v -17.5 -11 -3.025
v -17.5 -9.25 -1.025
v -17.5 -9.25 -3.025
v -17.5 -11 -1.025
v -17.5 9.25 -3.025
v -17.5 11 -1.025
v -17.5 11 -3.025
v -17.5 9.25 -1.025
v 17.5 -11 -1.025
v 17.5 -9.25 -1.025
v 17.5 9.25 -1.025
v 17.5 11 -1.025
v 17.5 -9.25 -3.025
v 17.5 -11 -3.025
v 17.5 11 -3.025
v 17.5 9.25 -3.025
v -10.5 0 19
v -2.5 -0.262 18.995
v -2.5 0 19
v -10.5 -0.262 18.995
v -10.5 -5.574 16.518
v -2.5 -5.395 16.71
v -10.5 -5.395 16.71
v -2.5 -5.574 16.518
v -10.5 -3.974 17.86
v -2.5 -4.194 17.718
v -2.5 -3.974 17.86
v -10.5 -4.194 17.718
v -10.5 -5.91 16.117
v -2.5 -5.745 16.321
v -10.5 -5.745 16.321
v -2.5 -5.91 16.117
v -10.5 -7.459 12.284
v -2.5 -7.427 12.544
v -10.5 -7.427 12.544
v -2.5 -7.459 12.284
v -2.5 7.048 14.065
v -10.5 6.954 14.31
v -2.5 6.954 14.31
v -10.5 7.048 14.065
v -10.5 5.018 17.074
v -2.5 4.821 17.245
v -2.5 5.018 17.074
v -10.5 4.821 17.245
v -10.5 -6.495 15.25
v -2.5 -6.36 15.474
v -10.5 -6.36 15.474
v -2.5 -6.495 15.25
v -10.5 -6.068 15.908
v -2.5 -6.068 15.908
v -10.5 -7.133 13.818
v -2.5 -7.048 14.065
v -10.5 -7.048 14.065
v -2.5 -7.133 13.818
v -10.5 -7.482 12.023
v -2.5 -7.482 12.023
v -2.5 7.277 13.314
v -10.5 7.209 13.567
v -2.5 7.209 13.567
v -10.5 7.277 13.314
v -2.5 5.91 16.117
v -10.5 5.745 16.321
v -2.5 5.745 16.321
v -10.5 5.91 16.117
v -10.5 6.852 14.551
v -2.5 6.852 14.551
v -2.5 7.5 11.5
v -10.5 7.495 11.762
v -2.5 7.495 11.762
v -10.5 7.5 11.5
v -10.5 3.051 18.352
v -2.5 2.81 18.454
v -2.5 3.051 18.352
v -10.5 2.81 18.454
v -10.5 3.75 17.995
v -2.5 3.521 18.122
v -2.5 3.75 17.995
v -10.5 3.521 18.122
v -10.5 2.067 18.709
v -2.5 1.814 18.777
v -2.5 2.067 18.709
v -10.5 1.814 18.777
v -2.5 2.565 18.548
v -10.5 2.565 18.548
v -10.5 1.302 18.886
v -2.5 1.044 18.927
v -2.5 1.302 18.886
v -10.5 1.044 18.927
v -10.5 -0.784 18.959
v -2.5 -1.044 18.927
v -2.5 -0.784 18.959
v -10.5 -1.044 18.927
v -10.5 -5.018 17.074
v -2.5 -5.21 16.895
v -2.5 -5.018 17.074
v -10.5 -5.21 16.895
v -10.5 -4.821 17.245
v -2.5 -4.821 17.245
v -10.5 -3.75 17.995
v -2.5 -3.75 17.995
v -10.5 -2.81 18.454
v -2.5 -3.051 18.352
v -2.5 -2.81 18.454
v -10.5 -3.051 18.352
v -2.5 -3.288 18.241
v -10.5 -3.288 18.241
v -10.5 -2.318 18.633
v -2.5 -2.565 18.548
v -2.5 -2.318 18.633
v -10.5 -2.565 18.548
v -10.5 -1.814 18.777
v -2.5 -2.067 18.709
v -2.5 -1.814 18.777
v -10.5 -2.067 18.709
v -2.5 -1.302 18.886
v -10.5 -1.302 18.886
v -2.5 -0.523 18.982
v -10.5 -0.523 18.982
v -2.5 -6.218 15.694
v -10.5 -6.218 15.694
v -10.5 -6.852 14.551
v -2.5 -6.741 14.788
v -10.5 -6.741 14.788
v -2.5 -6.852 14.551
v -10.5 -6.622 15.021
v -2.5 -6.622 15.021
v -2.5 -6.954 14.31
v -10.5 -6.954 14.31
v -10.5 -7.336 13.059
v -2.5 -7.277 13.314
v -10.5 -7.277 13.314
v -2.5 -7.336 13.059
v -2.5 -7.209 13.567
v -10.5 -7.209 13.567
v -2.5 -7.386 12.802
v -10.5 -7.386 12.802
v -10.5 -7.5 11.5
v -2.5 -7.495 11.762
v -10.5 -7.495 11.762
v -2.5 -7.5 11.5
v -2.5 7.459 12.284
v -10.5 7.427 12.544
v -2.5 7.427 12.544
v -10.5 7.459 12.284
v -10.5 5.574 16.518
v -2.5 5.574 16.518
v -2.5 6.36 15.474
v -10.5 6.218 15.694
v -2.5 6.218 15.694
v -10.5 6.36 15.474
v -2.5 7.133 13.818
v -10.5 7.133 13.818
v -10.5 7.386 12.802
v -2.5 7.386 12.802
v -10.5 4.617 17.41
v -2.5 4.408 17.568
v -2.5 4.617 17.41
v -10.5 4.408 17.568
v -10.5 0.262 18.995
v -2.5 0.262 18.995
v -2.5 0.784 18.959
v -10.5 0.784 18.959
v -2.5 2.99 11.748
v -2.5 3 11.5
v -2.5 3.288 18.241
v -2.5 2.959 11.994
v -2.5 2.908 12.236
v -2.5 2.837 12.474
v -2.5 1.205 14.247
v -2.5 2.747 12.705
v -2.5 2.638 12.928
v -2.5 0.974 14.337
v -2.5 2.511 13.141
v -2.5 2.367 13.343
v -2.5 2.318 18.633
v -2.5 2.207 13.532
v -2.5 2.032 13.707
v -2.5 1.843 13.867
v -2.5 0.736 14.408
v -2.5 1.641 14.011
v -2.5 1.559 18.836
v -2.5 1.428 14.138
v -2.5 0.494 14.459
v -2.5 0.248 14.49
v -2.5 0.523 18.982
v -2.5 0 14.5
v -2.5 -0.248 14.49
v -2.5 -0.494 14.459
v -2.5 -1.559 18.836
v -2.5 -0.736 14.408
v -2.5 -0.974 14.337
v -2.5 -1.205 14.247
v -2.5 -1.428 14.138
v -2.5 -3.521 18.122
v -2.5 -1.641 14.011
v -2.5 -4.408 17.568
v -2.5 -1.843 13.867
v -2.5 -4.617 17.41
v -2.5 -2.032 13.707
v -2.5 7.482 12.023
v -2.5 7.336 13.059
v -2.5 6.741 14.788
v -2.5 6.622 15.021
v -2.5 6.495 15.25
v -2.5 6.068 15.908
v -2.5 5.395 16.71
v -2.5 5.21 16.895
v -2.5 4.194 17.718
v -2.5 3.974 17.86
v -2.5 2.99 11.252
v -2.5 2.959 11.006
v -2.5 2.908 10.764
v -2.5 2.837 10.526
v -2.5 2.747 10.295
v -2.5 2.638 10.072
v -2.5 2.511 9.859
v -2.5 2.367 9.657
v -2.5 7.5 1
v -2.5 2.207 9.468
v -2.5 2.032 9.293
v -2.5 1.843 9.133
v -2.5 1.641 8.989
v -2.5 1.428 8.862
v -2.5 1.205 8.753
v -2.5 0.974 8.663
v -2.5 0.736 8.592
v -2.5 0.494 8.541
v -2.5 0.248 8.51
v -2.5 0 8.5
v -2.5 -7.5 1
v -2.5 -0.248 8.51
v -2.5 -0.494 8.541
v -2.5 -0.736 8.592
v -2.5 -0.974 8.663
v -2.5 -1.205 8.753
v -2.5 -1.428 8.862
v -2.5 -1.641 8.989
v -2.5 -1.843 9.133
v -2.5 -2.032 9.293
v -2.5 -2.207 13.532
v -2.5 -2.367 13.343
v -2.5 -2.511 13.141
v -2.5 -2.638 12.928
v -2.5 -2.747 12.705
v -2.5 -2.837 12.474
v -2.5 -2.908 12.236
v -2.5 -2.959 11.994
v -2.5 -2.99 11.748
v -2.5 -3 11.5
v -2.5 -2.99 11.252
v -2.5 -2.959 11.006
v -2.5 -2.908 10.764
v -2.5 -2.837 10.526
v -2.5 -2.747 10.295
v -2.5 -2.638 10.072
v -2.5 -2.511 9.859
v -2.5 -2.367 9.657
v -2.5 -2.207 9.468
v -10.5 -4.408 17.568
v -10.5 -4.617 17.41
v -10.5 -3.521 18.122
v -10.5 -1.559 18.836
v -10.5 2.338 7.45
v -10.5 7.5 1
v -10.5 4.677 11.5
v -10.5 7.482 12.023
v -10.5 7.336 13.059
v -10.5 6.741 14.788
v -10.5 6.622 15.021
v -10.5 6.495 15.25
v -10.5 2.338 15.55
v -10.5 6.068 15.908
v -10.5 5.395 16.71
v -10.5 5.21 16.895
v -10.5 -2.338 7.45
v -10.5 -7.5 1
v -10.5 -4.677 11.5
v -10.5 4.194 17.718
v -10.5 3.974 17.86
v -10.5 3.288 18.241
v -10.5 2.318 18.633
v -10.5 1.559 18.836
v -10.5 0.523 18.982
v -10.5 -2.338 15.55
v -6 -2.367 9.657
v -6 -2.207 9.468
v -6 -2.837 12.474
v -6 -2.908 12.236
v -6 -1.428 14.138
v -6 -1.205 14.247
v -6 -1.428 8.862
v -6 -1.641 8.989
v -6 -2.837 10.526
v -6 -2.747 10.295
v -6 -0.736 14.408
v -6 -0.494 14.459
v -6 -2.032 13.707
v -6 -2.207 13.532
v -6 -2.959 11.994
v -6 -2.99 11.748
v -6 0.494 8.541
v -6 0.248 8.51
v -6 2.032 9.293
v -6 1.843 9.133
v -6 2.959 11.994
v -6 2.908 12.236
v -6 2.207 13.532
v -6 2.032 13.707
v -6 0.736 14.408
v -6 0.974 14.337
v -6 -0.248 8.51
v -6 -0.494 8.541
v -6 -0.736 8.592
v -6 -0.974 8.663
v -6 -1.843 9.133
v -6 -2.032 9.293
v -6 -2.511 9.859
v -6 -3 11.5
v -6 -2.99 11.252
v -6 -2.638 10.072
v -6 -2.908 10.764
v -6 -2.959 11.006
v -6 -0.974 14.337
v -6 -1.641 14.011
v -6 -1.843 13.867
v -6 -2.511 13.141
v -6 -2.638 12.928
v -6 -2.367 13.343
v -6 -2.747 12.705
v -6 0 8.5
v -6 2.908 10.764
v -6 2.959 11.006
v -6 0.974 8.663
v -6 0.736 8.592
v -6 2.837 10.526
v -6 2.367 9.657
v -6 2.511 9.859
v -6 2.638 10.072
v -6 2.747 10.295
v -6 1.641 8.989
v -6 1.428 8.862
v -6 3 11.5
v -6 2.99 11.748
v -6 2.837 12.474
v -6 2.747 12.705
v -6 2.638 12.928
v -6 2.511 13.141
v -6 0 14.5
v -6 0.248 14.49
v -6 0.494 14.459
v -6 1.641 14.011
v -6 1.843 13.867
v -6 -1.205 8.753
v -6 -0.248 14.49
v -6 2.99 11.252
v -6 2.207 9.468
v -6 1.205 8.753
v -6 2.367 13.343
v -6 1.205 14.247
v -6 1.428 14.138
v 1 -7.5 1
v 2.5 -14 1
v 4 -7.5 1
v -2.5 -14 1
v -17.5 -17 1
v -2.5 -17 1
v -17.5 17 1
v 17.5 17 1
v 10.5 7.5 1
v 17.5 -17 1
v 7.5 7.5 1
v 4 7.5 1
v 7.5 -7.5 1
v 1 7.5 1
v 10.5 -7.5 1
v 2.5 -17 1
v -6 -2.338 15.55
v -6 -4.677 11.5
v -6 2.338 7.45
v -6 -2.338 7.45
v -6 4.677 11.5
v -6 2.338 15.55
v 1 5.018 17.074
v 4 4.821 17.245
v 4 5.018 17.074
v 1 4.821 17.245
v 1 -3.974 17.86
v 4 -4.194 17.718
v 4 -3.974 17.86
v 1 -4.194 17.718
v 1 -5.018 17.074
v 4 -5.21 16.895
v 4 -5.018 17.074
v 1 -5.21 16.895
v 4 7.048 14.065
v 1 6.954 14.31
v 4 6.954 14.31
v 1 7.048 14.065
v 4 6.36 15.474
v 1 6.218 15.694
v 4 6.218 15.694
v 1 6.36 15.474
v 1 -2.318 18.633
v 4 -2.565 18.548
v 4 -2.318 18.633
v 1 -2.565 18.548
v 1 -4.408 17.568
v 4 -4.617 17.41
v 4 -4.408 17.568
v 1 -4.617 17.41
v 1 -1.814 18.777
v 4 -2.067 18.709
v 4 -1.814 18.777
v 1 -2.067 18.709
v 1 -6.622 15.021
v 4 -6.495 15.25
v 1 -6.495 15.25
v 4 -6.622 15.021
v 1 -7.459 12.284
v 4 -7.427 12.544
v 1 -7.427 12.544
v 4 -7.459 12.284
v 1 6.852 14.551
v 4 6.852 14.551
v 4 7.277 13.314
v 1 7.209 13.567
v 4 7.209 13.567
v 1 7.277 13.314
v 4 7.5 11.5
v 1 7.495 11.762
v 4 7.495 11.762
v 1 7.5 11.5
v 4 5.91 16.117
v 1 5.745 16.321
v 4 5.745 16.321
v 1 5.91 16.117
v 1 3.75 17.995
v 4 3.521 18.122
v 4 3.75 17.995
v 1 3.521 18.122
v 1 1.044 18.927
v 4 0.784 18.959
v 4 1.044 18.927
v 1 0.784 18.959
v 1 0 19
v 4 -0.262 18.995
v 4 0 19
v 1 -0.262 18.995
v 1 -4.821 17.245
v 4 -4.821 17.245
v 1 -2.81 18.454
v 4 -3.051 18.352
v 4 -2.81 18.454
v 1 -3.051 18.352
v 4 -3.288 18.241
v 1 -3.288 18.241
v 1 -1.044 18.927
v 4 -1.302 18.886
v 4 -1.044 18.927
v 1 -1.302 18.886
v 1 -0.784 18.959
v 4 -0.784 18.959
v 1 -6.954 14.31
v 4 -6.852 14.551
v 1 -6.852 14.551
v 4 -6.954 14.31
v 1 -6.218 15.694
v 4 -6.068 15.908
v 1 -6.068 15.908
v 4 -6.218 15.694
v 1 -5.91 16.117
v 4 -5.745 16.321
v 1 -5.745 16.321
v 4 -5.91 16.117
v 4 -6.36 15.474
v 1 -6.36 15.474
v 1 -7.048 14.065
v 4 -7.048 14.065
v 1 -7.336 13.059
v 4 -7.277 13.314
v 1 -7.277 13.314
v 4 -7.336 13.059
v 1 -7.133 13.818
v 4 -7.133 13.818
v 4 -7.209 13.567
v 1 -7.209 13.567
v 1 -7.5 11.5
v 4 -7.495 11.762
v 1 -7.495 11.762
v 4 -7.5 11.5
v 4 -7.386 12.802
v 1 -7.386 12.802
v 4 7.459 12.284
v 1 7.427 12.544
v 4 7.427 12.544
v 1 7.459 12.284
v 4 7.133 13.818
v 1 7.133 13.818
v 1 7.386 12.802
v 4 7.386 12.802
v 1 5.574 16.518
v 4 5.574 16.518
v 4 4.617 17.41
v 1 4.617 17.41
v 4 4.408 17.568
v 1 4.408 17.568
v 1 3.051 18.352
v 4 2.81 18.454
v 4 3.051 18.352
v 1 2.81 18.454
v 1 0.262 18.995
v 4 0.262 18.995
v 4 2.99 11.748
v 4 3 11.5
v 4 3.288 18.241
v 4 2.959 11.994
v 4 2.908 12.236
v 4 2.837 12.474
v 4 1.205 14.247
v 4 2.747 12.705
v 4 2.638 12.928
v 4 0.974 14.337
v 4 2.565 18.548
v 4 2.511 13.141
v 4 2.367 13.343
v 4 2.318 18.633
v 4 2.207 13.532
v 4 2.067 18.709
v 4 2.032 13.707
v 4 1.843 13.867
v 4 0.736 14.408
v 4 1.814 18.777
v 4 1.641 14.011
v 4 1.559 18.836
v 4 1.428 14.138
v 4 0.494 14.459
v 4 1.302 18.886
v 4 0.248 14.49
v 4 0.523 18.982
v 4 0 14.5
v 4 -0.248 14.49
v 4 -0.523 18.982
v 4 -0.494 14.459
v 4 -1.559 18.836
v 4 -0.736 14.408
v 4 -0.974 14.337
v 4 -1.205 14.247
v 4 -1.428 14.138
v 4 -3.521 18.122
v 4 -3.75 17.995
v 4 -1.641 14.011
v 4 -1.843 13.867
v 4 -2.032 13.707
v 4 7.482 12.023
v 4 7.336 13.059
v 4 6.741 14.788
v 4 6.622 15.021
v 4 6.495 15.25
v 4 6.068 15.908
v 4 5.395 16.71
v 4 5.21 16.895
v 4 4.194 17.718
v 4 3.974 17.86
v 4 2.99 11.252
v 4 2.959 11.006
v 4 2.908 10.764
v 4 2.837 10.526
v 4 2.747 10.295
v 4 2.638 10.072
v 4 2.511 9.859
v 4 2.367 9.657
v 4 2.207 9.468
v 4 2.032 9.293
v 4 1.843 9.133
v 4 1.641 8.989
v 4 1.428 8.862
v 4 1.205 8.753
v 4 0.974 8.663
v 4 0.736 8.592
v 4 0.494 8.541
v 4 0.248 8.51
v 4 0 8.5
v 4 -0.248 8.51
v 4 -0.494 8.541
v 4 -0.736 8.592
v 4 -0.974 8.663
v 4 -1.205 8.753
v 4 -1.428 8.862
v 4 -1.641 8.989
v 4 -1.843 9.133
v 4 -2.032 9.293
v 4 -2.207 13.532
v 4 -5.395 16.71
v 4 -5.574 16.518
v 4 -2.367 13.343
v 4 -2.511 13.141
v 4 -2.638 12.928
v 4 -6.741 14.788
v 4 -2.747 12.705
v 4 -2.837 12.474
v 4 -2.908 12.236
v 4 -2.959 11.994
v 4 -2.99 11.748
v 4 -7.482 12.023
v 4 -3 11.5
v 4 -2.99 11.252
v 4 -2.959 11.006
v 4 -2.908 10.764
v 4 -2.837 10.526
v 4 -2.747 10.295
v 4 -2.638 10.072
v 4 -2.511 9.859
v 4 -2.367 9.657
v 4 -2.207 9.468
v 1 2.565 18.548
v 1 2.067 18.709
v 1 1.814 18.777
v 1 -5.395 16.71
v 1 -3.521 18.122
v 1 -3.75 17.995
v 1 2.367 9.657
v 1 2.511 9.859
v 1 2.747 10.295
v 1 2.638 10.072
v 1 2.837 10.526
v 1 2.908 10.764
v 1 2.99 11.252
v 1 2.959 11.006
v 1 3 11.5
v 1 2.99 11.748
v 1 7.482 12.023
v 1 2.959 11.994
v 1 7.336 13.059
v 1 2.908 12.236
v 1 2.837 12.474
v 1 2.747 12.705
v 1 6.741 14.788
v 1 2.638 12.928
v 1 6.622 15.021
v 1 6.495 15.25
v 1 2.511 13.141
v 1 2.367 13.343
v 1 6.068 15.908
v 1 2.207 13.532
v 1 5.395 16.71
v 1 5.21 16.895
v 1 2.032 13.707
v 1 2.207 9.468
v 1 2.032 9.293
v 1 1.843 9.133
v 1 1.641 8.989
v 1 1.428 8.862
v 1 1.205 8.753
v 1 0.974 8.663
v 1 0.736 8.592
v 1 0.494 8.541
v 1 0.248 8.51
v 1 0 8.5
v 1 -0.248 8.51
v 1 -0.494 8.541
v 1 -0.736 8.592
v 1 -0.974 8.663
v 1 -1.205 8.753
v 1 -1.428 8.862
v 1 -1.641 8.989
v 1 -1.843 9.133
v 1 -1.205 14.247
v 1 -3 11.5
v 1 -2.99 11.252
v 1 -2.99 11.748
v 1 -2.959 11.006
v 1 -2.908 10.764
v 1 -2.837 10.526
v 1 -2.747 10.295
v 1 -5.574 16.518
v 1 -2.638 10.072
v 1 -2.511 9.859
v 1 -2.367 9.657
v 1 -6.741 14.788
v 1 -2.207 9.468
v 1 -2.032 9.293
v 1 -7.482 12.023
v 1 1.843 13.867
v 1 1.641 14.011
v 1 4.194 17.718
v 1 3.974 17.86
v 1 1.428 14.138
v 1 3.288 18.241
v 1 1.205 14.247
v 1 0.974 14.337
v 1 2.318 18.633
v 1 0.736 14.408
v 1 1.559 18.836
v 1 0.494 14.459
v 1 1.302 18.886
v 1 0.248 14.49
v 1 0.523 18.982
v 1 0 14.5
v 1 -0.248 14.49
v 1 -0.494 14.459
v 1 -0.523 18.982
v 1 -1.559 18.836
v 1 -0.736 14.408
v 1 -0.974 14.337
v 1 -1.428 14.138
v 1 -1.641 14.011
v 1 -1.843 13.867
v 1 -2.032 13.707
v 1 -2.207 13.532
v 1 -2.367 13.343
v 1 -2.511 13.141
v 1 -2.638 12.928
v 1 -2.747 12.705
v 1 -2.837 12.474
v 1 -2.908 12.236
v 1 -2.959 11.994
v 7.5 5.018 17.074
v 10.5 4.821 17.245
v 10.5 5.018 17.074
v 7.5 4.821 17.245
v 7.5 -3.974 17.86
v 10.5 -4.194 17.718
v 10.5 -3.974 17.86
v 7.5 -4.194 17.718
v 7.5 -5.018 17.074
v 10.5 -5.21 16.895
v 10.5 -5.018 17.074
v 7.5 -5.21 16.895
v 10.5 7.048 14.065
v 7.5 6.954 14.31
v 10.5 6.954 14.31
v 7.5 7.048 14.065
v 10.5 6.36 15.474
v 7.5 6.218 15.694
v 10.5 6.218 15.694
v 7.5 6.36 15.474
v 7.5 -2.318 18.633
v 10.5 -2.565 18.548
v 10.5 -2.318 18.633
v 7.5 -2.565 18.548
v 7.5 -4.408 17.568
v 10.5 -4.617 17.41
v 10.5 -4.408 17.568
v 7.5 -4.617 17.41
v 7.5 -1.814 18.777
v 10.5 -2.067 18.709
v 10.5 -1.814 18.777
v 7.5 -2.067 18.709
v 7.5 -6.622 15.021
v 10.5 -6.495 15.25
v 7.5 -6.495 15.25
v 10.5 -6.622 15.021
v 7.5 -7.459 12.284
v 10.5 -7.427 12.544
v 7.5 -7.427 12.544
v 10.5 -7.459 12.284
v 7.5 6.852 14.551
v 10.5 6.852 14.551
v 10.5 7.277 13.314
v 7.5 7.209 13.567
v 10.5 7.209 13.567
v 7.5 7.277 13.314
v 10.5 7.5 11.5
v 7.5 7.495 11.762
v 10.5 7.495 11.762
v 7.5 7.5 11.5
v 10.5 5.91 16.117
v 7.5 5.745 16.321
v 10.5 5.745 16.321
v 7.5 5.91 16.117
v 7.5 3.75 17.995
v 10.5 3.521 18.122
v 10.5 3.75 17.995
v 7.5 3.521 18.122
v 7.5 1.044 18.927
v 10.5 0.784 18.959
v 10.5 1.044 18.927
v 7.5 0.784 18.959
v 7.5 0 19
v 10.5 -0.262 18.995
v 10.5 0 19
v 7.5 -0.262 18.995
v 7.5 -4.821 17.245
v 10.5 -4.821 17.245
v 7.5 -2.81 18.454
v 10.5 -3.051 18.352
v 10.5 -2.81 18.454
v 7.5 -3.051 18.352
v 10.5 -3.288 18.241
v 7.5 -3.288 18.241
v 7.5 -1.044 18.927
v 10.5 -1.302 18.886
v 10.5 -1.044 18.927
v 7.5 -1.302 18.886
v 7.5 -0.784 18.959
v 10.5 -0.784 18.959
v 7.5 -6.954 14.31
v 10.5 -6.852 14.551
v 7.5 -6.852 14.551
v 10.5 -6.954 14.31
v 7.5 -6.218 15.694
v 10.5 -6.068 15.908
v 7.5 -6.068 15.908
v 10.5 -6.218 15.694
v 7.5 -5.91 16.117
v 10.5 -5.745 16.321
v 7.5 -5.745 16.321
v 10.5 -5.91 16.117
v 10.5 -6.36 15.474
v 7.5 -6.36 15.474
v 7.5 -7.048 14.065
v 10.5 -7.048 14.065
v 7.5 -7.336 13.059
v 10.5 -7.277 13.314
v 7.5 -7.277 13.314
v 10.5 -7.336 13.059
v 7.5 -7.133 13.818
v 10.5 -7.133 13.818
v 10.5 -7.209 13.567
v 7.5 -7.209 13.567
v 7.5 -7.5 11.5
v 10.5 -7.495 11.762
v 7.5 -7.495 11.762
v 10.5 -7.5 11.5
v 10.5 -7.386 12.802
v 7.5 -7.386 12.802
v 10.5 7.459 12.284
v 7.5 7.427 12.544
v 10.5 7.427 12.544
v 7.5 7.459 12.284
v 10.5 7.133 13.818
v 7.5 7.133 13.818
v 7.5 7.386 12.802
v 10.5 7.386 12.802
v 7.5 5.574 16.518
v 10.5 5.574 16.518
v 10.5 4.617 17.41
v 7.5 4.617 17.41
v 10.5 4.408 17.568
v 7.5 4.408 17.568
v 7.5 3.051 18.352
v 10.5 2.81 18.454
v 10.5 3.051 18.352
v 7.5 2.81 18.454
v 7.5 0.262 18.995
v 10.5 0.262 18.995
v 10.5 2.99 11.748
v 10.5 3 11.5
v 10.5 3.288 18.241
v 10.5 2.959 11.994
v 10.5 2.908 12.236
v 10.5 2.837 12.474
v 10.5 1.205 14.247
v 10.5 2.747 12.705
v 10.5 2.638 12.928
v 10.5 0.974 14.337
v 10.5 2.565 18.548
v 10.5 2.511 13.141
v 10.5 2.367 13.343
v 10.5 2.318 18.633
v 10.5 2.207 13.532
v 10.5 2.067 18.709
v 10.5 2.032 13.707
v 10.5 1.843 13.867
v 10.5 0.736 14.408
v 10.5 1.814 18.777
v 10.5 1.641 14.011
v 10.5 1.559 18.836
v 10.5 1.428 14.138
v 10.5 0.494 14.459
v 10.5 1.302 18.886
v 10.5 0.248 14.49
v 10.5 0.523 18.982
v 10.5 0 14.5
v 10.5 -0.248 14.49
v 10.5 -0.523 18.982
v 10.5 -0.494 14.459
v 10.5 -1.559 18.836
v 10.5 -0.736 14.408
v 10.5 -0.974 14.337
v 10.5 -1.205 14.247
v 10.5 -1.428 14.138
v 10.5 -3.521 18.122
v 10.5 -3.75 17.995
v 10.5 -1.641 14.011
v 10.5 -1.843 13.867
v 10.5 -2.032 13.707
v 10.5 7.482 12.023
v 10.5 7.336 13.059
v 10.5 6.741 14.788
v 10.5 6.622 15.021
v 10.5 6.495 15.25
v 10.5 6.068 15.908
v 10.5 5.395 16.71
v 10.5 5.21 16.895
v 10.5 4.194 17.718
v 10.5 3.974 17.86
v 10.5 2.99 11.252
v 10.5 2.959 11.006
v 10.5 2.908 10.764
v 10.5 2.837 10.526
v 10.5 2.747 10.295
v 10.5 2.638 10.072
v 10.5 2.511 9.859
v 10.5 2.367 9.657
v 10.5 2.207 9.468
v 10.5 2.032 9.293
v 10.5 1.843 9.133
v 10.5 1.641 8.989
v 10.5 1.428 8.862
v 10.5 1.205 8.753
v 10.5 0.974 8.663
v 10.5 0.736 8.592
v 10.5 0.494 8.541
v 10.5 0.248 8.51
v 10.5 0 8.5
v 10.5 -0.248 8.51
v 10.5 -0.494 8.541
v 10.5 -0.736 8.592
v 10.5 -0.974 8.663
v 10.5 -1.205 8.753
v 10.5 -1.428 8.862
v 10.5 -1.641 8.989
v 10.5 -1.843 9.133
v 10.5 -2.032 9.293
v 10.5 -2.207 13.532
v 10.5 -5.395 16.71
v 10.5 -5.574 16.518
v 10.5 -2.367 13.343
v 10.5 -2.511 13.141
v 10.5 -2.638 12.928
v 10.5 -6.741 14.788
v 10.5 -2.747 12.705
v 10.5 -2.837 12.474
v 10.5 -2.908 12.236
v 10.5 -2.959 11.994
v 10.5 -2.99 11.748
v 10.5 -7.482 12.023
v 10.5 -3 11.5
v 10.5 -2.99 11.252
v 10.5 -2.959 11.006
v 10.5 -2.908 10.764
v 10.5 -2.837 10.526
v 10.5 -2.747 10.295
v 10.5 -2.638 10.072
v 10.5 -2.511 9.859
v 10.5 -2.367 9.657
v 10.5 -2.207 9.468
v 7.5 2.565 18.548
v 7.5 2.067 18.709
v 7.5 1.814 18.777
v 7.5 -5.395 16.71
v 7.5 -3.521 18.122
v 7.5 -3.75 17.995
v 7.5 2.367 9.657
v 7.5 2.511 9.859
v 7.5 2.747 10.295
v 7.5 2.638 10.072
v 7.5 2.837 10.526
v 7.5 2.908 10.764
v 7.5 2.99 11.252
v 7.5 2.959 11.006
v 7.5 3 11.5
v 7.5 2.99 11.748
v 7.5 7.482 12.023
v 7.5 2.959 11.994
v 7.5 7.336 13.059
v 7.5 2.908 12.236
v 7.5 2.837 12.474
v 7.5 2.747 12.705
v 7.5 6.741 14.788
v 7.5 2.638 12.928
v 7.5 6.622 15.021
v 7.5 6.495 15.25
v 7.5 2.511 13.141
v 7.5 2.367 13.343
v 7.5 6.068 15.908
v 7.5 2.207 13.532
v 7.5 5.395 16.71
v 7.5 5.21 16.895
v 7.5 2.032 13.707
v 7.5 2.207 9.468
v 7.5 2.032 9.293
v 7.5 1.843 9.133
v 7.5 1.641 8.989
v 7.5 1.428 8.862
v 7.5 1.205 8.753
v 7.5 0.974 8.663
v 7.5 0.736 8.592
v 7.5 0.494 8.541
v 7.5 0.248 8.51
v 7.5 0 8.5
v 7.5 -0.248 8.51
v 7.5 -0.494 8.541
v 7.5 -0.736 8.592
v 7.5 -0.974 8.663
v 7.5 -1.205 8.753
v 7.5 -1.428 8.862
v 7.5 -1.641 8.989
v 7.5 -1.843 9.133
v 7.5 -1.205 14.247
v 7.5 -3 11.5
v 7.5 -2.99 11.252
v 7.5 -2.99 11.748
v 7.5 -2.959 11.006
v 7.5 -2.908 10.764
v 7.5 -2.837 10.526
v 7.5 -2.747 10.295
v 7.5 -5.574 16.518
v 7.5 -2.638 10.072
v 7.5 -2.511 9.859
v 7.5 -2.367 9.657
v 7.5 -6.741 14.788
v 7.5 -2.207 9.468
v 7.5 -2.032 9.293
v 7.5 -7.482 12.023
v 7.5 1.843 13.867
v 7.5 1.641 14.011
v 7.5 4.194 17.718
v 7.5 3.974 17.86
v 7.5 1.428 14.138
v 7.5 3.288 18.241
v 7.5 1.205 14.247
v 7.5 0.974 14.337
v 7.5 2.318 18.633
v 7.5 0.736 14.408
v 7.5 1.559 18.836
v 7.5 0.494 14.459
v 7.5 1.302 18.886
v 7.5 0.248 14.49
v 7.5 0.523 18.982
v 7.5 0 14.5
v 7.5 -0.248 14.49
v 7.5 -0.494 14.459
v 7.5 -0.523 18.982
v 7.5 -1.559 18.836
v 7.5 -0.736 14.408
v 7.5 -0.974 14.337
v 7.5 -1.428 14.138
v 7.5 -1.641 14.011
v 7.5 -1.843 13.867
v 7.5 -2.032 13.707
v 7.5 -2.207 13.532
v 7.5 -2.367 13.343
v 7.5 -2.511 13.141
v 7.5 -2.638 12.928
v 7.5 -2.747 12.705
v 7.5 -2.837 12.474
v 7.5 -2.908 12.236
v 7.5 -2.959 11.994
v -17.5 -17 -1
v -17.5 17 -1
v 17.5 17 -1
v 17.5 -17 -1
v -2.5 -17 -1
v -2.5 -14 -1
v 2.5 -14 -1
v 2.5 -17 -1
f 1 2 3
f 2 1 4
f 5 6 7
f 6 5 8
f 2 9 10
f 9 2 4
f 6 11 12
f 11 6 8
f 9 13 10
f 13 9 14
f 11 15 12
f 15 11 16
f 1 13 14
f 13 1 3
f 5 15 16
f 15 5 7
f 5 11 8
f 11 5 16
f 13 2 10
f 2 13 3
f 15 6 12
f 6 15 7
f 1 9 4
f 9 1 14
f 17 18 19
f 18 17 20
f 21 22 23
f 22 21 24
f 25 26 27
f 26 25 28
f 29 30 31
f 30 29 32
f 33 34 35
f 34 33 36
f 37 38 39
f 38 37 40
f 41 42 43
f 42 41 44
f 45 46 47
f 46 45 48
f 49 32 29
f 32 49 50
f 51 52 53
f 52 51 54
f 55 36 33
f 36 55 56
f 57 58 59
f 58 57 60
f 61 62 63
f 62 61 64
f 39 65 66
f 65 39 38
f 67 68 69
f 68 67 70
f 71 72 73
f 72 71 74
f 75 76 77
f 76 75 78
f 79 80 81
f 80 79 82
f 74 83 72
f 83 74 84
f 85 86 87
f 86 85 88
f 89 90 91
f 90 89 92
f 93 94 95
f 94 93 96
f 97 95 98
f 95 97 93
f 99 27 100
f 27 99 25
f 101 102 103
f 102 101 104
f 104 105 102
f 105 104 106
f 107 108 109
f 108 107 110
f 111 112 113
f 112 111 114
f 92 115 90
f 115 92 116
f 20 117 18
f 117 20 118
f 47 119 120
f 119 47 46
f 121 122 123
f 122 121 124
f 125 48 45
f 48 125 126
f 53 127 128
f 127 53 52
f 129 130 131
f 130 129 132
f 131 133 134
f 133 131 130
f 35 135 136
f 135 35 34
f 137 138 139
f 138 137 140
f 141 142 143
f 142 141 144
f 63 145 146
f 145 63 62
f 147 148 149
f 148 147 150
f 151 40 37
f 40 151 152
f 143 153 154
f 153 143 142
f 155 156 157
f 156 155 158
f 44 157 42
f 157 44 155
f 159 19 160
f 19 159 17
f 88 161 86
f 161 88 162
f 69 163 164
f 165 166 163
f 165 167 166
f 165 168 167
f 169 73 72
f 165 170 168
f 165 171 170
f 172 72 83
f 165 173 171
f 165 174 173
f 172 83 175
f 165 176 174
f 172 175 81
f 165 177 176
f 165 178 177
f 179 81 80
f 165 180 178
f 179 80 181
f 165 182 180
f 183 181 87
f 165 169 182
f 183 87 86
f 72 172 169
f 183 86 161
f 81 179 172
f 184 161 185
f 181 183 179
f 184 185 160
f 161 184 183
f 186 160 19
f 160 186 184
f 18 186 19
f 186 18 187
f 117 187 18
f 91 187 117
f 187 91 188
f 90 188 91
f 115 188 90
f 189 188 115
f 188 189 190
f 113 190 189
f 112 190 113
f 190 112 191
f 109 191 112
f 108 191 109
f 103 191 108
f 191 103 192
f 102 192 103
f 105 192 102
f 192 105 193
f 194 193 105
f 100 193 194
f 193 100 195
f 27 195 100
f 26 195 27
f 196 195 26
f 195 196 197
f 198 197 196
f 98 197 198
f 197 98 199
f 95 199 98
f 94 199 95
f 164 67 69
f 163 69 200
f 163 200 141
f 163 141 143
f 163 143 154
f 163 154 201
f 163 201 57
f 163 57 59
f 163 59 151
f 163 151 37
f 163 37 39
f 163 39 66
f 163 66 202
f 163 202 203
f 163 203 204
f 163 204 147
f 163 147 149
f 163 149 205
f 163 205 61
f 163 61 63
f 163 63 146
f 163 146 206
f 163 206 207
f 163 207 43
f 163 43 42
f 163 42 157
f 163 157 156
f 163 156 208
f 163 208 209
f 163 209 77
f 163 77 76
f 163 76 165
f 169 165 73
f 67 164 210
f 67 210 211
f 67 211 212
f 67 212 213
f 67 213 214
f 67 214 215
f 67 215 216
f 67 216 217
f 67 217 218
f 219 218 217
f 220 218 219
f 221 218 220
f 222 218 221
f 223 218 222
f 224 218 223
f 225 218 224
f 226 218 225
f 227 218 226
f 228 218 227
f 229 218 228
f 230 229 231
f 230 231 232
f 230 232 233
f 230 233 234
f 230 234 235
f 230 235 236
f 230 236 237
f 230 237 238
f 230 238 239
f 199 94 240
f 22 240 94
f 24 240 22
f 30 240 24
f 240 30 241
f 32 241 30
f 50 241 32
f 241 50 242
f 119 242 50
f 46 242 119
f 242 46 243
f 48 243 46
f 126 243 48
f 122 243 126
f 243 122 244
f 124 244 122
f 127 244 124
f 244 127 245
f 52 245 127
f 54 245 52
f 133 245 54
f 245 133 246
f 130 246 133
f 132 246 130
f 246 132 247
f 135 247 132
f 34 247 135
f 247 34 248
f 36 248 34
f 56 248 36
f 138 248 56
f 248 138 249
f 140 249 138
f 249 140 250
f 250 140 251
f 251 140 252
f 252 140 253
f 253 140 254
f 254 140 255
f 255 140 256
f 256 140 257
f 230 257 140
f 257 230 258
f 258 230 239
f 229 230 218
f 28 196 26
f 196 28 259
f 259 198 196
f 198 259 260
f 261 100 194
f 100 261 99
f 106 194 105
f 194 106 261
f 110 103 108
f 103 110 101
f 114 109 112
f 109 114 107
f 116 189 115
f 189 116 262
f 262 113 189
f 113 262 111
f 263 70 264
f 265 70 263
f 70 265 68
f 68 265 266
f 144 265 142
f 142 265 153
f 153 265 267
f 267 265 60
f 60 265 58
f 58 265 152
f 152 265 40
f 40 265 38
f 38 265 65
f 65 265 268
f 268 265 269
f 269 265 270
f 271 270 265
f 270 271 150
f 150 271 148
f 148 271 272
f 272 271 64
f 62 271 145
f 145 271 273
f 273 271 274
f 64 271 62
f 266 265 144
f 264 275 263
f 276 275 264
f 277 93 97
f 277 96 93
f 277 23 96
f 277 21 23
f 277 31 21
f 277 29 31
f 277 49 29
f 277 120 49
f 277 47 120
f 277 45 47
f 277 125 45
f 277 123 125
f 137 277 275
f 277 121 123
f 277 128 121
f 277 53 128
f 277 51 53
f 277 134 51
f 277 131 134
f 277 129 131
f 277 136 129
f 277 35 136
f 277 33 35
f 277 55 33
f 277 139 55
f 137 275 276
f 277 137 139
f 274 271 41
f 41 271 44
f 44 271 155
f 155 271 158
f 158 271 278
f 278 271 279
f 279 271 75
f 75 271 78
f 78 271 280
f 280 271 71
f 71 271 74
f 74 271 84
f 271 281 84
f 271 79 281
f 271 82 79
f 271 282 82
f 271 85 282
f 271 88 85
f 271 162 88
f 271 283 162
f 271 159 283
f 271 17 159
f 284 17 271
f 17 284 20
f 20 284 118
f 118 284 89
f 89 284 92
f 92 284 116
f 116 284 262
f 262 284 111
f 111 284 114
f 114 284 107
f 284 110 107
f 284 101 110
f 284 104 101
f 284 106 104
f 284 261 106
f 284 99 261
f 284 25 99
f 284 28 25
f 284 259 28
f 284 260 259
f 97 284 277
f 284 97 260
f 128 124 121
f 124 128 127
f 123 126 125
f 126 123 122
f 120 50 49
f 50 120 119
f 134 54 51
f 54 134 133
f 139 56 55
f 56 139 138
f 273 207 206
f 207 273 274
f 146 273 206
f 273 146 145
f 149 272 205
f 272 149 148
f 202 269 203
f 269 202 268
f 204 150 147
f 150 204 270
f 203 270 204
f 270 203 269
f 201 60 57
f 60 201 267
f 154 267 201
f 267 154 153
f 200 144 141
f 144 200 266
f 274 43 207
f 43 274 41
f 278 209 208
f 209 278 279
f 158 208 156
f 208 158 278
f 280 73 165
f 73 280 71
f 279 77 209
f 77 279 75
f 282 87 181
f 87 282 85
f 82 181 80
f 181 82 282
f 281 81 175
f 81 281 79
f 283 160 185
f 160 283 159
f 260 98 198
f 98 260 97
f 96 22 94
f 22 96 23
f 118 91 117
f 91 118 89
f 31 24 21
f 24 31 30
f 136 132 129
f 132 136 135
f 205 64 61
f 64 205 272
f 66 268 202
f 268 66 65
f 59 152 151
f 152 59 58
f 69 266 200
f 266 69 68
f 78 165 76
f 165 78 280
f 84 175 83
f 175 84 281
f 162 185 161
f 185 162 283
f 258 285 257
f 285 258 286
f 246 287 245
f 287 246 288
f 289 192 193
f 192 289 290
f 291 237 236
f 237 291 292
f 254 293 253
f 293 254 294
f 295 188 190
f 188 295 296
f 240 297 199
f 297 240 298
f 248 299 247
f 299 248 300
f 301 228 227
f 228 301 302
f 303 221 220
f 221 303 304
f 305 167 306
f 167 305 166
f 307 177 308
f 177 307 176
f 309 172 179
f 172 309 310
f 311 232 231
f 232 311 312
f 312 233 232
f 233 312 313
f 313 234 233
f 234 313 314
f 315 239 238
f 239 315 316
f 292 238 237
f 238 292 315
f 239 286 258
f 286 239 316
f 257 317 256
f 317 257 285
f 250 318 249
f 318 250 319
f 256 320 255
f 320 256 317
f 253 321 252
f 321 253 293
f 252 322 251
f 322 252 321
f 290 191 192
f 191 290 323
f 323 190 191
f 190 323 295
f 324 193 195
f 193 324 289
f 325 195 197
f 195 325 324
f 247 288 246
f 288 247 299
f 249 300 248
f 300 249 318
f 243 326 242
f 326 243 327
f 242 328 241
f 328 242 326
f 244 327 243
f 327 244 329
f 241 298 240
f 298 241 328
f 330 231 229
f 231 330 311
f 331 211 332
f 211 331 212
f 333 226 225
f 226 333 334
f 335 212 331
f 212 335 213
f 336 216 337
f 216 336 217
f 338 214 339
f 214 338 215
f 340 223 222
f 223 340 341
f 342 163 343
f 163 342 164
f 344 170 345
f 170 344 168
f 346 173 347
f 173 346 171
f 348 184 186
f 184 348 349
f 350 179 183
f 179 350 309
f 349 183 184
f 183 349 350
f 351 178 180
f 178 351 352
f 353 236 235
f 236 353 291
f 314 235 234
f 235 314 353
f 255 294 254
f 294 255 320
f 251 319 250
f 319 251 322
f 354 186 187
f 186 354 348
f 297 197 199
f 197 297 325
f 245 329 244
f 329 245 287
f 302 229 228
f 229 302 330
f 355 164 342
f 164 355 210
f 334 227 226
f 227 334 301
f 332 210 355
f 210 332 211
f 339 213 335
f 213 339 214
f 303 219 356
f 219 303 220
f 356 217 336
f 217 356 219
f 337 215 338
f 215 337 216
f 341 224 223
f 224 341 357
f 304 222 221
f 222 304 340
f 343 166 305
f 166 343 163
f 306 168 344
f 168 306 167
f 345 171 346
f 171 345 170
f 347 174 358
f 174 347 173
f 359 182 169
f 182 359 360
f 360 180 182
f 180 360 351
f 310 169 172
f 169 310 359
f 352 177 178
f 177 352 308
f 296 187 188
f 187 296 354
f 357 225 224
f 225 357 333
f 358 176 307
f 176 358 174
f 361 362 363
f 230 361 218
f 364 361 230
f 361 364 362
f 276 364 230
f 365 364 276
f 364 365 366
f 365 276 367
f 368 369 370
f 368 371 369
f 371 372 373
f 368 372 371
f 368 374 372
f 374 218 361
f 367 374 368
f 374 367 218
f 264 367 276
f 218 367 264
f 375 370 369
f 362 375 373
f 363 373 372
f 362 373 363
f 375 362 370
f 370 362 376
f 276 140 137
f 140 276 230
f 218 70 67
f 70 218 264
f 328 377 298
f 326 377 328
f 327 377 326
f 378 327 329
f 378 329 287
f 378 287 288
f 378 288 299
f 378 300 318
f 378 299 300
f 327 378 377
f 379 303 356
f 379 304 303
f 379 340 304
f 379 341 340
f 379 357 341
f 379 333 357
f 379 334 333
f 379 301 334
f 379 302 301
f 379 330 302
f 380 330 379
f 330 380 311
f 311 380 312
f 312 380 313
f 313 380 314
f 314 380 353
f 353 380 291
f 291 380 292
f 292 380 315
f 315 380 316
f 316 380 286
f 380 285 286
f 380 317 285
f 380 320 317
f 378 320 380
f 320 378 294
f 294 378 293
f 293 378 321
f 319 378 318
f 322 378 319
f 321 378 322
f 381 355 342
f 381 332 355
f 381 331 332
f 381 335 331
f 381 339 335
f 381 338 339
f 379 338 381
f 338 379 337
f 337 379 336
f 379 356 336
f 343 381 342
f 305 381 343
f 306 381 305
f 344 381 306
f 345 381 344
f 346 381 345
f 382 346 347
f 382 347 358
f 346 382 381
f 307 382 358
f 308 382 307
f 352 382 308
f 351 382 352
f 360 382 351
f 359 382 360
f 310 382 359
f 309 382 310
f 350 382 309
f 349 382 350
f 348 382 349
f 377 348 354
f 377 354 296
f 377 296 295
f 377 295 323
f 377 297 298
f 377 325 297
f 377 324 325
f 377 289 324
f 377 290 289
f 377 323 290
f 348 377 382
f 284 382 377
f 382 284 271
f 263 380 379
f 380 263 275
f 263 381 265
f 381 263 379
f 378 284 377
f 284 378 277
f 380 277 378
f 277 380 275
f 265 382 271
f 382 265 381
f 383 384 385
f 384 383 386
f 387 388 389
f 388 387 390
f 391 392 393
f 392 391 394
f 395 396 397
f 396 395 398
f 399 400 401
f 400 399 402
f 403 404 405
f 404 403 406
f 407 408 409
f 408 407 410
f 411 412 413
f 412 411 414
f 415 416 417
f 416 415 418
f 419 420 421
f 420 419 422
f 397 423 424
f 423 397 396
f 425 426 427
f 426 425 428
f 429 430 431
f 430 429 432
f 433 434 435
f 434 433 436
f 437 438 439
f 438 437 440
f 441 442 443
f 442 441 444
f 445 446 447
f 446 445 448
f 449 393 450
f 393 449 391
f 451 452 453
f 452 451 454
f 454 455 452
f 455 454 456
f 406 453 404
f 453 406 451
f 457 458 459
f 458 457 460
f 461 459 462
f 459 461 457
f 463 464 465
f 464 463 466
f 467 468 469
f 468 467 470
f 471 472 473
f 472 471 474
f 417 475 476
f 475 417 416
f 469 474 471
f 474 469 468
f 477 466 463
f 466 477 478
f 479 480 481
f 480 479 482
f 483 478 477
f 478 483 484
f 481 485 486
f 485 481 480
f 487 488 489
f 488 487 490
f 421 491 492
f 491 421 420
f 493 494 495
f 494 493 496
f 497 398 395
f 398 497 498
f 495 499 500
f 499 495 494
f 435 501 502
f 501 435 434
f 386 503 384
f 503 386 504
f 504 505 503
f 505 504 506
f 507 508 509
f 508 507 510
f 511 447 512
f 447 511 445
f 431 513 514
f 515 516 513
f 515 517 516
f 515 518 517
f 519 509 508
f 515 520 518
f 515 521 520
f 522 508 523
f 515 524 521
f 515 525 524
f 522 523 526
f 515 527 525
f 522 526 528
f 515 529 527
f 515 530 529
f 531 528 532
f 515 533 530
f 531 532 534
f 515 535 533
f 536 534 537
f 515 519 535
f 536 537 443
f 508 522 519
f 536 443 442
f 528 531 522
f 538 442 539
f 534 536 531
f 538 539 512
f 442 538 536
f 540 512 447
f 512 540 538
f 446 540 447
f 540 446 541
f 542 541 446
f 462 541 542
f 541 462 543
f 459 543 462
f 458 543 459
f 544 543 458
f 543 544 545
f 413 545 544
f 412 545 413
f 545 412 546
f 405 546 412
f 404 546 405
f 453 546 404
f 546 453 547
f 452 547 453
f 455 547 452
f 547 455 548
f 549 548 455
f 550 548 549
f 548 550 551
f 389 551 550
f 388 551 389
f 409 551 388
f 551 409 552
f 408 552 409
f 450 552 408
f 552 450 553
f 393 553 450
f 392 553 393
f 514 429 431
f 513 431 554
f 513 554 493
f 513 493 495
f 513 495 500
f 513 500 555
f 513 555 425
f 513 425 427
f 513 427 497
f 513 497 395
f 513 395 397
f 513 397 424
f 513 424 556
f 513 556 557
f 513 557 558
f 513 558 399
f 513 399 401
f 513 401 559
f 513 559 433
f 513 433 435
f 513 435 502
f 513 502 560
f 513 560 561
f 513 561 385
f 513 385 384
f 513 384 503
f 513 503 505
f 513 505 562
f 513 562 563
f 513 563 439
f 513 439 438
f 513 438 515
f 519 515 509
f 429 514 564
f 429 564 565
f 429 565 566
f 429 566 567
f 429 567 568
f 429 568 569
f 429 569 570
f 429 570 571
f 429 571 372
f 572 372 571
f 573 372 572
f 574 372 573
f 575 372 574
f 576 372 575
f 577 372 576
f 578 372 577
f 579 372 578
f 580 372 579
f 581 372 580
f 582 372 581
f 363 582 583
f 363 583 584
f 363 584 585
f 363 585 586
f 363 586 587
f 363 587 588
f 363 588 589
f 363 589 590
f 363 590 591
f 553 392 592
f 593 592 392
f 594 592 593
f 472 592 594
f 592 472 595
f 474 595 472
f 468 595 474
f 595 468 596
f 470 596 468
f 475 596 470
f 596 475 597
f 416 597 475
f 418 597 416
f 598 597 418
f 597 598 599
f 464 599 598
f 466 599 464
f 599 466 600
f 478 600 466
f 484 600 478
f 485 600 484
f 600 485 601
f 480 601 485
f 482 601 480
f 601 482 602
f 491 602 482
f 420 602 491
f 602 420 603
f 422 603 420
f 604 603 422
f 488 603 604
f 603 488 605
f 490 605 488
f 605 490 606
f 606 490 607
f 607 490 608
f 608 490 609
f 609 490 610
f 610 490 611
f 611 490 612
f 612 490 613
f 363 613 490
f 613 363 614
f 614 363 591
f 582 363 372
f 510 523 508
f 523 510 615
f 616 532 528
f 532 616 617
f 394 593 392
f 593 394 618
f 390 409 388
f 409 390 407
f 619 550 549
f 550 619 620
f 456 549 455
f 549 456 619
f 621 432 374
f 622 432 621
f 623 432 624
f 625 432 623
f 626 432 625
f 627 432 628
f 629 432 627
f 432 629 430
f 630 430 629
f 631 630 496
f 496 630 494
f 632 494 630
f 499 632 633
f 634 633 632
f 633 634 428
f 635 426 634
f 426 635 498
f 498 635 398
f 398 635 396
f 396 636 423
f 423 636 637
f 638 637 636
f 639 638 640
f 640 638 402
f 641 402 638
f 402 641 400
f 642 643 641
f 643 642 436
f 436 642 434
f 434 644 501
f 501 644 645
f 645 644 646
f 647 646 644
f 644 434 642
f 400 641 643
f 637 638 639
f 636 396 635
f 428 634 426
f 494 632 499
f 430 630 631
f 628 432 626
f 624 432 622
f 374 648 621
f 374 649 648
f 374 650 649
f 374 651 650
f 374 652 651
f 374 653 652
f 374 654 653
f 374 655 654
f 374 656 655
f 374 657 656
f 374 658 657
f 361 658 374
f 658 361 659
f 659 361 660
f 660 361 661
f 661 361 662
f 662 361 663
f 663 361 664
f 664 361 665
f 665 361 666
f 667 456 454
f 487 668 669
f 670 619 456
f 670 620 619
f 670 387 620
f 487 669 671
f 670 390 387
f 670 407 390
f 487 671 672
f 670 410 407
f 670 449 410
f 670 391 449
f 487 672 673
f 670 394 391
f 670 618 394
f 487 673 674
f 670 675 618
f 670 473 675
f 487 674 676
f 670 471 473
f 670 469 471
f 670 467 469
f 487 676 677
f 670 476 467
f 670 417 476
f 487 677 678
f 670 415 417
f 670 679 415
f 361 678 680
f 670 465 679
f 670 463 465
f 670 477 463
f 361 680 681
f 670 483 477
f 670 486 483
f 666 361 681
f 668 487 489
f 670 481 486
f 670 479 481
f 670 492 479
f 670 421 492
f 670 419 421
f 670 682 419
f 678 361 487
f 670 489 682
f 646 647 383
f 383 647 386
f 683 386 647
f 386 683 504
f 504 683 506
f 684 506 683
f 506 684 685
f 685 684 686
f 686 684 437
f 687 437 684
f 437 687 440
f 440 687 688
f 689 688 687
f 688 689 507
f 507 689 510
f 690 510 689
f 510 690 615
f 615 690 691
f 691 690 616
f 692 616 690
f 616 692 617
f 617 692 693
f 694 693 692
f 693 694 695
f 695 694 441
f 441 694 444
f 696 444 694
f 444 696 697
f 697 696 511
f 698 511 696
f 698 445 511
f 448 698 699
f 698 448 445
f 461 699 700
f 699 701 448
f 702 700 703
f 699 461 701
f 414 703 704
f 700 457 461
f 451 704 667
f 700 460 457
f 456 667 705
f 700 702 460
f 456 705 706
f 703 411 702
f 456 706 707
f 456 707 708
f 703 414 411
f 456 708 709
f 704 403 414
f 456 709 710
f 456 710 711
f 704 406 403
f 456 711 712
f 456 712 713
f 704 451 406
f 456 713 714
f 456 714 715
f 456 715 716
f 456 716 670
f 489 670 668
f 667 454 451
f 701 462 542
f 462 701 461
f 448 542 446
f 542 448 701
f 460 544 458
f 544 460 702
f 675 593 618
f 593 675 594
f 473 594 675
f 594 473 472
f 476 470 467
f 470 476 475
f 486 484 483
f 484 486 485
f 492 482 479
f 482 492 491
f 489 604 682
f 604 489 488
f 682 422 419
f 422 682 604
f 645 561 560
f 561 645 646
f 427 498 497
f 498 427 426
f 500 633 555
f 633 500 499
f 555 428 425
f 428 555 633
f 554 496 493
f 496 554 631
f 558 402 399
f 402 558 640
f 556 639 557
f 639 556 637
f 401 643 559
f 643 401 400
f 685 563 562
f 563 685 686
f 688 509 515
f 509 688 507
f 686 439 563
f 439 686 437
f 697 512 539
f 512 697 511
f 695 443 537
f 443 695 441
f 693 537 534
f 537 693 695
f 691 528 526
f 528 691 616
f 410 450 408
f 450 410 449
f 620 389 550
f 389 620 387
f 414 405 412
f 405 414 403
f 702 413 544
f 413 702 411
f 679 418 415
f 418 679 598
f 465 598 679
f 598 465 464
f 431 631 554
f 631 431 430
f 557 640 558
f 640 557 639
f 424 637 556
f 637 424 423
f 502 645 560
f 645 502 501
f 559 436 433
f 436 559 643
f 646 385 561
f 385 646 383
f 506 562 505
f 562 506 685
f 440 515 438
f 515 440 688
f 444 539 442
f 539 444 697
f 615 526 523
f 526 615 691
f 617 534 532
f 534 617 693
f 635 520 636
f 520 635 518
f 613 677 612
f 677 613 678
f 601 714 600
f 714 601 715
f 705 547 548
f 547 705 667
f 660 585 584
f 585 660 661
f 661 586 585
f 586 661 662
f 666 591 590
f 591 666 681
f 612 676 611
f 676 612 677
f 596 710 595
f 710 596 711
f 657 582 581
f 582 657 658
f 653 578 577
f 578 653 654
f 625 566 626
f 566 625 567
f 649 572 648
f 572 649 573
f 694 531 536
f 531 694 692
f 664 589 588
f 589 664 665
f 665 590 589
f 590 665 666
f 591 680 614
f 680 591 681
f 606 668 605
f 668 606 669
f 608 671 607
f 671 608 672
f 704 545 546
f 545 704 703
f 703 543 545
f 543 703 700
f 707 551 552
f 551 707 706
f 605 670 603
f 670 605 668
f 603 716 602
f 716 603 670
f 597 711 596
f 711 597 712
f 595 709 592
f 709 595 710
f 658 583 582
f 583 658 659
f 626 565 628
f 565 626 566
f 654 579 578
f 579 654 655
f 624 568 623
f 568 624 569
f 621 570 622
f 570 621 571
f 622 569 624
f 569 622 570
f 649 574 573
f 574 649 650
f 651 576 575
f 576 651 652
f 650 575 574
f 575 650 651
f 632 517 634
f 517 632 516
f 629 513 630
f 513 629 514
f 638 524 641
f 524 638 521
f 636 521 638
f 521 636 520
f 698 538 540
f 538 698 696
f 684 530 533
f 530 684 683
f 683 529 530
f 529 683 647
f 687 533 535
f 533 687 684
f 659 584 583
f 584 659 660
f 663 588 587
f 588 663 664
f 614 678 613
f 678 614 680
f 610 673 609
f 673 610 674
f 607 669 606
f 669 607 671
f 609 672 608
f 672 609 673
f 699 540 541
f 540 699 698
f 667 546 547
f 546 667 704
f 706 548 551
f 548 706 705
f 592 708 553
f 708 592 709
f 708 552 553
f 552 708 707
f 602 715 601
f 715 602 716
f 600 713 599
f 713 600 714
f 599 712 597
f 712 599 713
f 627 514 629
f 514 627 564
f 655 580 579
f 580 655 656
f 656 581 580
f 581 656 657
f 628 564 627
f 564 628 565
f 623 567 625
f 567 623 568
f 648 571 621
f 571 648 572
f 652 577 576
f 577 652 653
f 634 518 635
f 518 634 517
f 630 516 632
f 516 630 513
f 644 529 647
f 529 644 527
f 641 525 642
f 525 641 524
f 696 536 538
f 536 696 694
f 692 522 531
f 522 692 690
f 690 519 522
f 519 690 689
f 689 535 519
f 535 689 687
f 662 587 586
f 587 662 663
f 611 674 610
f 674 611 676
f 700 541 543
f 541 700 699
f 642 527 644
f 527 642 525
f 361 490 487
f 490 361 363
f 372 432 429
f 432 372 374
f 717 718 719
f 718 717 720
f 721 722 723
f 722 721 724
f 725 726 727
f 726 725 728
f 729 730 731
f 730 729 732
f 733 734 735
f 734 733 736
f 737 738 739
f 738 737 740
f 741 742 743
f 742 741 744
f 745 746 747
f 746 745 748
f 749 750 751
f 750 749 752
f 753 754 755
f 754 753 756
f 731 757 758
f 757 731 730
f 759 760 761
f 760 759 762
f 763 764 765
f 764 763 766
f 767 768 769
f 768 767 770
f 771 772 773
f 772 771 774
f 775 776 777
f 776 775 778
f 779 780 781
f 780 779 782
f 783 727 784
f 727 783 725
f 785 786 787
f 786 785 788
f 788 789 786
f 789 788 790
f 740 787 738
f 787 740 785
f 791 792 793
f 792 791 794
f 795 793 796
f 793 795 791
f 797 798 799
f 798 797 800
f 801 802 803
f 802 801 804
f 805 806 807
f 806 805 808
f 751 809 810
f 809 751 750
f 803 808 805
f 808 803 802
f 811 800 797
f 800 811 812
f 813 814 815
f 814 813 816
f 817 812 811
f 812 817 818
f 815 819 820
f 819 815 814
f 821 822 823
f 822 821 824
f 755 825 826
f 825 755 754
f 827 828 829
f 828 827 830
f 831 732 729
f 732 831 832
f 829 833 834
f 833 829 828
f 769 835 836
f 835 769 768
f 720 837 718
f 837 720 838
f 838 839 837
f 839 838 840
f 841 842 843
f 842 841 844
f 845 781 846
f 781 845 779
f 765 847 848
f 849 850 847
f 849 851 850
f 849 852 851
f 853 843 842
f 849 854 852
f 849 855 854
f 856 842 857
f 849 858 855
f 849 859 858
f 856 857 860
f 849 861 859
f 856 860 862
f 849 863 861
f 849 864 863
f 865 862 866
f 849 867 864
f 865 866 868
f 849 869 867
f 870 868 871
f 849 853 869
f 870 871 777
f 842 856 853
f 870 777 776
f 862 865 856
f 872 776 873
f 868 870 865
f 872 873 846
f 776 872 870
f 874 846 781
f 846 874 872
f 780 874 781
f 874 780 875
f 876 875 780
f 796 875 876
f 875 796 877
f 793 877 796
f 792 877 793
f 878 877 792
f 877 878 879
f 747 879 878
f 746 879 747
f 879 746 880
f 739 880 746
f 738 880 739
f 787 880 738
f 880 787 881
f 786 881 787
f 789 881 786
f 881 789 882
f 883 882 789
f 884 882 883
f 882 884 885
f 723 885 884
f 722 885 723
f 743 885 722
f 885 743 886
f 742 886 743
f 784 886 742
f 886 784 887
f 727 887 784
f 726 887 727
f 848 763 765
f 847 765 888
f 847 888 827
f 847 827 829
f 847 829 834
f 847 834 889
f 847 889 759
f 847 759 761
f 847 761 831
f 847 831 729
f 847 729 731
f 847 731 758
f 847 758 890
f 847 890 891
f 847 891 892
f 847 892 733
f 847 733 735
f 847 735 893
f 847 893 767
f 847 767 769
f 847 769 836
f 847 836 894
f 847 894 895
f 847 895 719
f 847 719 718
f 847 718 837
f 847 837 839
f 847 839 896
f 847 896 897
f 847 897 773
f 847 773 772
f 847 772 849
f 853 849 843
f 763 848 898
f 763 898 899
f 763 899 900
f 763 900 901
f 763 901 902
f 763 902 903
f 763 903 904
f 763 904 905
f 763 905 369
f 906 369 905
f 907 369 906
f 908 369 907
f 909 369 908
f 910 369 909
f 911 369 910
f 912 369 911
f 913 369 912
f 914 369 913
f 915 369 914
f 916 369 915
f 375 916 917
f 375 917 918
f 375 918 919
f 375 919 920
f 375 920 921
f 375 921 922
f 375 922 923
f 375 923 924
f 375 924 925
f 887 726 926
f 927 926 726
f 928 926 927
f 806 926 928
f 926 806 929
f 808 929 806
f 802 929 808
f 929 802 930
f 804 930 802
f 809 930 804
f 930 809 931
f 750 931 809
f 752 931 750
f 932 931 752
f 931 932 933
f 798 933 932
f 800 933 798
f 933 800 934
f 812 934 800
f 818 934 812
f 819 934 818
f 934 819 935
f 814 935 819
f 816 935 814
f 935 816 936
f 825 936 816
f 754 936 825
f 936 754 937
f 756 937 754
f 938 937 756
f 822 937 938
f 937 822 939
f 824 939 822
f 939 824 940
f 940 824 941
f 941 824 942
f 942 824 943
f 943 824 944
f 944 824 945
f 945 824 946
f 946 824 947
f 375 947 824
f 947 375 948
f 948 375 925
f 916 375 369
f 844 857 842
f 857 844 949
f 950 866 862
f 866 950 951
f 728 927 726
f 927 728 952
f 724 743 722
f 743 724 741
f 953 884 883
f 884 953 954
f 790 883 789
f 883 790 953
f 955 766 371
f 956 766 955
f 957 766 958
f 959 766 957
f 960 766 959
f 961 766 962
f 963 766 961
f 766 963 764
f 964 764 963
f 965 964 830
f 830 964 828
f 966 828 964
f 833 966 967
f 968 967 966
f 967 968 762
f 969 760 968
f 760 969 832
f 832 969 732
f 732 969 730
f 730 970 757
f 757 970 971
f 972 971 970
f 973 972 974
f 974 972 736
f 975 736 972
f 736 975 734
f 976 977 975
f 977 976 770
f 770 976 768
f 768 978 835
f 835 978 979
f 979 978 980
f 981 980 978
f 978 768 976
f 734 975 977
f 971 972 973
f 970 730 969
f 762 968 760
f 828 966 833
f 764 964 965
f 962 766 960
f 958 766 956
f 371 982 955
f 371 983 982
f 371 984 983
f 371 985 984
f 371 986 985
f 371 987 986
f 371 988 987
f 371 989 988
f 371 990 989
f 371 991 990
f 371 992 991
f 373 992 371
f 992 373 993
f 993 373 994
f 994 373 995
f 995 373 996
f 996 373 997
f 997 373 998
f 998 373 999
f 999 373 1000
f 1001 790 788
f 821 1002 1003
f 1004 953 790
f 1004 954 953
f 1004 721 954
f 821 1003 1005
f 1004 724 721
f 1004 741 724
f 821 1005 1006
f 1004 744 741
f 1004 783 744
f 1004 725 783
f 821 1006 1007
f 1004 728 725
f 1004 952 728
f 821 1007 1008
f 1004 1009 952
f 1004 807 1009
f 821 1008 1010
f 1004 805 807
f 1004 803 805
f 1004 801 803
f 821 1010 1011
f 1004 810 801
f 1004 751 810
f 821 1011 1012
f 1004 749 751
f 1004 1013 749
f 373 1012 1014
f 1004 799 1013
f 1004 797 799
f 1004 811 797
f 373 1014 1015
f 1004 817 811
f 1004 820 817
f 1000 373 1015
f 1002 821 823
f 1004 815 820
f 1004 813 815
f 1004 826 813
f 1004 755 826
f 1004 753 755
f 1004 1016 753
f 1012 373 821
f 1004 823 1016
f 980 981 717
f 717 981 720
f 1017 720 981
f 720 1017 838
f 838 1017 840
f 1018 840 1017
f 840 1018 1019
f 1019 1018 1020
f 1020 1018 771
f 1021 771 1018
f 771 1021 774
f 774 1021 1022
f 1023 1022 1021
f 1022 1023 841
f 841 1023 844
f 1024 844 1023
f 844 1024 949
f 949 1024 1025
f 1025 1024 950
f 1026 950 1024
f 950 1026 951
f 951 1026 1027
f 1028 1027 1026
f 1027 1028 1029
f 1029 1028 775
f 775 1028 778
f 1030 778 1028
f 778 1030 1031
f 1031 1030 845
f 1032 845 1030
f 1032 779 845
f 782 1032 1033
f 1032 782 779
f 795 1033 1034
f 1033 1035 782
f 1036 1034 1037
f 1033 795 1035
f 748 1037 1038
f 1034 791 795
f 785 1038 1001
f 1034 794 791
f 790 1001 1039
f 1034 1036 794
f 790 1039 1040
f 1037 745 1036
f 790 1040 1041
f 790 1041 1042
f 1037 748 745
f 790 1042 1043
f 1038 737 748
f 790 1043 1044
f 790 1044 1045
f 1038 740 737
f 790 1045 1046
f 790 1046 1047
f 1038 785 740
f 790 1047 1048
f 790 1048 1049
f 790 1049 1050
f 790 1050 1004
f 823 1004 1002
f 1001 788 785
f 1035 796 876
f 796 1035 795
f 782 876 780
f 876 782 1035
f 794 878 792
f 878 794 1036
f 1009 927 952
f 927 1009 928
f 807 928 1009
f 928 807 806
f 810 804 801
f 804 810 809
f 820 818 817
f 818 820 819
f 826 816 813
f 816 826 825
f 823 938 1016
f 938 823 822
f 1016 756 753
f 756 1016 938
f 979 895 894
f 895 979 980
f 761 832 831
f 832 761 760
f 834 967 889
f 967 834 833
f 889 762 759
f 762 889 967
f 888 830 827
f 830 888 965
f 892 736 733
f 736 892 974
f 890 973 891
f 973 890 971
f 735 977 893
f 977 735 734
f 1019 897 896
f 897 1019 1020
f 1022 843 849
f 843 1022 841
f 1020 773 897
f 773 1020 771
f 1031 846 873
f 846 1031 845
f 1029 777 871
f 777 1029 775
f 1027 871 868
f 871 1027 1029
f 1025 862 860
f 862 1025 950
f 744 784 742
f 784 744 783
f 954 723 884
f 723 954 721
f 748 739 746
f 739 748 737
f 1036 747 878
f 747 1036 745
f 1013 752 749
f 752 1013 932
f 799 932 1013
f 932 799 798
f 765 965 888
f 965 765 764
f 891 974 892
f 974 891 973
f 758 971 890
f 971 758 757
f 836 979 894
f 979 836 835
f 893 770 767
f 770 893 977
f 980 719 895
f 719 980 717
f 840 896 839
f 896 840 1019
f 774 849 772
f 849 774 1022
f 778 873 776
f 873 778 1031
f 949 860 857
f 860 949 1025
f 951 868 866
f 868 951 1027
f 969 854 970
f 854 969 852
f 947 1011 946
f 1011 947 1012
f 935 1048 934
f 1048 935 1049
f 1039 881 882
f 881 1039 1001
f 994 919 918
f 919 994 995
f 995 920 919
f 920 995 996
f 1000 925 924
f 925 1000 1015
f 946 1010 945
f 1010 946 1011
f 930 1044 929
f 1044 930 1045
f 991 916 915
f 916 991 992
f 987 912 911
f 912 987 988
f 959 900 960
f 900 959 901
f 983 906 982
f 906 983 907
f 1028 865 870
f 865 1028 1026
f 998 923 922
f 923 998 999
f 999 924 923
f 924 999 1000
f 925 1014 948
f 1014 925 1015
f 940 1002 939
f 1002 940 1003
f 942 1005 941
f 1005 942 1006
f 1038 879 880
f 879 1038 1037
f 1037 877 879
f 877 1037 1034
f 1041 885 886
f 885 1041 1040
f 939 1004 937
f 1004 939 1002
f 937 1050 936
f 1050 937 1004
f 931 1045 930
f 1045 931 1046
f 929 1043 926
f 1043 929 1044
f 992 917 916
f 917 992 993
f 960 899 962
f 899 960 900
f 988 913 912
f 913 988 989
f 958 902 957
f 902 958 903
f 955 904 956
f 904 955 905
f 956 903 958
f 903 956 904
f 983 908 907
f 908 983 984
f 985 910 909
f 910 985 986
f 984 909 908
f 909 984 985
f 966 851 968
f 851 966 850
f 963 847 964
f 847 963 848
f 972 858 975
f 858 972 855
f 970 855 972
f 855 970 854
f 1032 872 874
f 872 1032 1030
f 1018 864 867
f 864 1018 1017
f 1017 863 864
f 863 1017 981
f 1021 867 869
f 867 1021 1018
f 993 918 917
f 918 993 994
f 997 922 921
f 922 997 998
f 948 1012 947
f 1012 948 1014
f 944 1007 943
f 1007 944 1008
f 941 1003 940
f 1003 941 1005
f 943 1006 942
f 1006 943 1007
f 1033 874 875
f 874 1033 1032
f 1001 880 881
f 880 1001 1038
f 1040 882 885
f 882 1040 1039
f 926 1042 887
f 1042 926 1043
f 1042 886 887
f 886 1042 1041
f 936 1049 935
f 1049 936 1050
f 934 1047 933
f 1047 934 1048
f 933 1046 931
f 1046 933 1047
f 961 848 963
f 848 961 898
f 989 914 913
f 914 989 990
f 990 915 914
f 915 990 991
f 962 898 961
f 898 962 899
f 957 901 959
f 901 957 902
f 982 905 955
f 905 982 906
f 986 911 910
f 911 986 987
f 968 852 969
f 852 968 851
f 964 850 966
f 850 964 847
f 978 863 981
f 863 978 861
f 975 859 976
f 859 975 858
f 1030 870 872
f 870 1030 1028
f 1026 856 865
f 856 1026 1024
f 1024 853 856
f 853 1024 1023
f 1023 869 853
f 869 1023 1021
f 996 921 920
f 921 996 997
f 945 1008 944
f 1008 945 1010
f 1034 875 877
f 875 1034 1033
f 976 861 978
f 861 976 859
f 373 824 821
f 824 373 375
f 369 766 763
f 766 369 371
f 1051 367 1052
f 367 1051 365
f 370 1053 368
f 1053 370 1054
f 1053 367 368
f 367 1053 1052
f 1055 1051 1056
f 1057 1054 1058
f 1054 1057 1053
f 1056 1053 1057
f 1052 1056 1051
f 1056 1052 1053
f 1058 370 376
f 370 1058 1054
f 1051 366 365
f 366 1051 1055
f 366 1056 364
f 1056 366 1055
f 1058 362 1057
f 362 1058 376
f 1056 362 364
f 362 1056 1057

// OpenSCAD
backcover();

cover_z = 2;

module backcover(){
    difference(){
        union(){
            backplate();
            nanoframe();
            translate([0, 0, 10.5 + cover_z/2])
            rotate([0, 90, -90])
                mount3();        
        }
        #translate([0,-15.5,0]) backhole();
    }
}

module backplate(){
    cube([35,34,cover_z], center = true);
}

module backhole(){
    cube([5,3,20], center = true);
}

module nanoframe(){
    //nano
    difference(){
    translate([0,0,-4.05/2])cube([35,34,cover_z], center = true);
    translate([0,0,-4.05/2])cube([34+2,18.5,4.05], center = true);
        translate([0,15,-4.05/2])cube([35,8,cover_z], center = true);
        mirror([0,1,0])translate([0,15,-4.05/2])cube([35,8,cover_z], center = true);
    }
}

module gopromount(){
    
}


$fa = 2;
$fs = 0.25;
Extra_Mount_Depth = 3;

module nut_hole()
{
	rotate([0, 90, 0]) // (Un)comment to rotate nut hole
	rotate([90, 0, 0])
		for(i = [0:(360 / 3):359])
		{
			rotate([0, 0, i])
				cube([4.6765, 8.1, 5], center = true);
		}
}

module flap(Width)
{
	rotate([90, 0, 0])
	union()
	{
		translate([3.5, (-7.5), 0])
			cube([4 + Extra_Mount_Depth, 15, Width]);


		translate([0, (-7.5), 0])
			cube([7.5 + Extra_Mount_Depth, 4, Width]);

		translate([0, 3.5, 0])
			cube([7.5 + Extra_Mount_Depth, 4, Width]);

		difference()
		{
			cylinder(h = Width, d = 15);

			translate([0, 0, (-1)])
				cylinder(h = Width + 2, d = 6);
		}
	}
}

module mount2()
{
	union()
	{

			translate([0, 4, 0])
		flap(3);

		translate([0, 10.5, 0])
		flap(3);
	}
}

module mount3()
{
	union()
	{
		difference()
		{
			translate([0, (-2.5), 0])
				flap(8);

			translate([0, (-8.5), 0])
				nut_hole();
		}

		mount2();
	}
}

/* GoPro Mount - 2 flap no nut hole
translate([0, 0, 10.5])
	rotate([0, 90, 0])
		mount2();
// */

//* GoPro Mount - 3 flap w/nut hole

// */
